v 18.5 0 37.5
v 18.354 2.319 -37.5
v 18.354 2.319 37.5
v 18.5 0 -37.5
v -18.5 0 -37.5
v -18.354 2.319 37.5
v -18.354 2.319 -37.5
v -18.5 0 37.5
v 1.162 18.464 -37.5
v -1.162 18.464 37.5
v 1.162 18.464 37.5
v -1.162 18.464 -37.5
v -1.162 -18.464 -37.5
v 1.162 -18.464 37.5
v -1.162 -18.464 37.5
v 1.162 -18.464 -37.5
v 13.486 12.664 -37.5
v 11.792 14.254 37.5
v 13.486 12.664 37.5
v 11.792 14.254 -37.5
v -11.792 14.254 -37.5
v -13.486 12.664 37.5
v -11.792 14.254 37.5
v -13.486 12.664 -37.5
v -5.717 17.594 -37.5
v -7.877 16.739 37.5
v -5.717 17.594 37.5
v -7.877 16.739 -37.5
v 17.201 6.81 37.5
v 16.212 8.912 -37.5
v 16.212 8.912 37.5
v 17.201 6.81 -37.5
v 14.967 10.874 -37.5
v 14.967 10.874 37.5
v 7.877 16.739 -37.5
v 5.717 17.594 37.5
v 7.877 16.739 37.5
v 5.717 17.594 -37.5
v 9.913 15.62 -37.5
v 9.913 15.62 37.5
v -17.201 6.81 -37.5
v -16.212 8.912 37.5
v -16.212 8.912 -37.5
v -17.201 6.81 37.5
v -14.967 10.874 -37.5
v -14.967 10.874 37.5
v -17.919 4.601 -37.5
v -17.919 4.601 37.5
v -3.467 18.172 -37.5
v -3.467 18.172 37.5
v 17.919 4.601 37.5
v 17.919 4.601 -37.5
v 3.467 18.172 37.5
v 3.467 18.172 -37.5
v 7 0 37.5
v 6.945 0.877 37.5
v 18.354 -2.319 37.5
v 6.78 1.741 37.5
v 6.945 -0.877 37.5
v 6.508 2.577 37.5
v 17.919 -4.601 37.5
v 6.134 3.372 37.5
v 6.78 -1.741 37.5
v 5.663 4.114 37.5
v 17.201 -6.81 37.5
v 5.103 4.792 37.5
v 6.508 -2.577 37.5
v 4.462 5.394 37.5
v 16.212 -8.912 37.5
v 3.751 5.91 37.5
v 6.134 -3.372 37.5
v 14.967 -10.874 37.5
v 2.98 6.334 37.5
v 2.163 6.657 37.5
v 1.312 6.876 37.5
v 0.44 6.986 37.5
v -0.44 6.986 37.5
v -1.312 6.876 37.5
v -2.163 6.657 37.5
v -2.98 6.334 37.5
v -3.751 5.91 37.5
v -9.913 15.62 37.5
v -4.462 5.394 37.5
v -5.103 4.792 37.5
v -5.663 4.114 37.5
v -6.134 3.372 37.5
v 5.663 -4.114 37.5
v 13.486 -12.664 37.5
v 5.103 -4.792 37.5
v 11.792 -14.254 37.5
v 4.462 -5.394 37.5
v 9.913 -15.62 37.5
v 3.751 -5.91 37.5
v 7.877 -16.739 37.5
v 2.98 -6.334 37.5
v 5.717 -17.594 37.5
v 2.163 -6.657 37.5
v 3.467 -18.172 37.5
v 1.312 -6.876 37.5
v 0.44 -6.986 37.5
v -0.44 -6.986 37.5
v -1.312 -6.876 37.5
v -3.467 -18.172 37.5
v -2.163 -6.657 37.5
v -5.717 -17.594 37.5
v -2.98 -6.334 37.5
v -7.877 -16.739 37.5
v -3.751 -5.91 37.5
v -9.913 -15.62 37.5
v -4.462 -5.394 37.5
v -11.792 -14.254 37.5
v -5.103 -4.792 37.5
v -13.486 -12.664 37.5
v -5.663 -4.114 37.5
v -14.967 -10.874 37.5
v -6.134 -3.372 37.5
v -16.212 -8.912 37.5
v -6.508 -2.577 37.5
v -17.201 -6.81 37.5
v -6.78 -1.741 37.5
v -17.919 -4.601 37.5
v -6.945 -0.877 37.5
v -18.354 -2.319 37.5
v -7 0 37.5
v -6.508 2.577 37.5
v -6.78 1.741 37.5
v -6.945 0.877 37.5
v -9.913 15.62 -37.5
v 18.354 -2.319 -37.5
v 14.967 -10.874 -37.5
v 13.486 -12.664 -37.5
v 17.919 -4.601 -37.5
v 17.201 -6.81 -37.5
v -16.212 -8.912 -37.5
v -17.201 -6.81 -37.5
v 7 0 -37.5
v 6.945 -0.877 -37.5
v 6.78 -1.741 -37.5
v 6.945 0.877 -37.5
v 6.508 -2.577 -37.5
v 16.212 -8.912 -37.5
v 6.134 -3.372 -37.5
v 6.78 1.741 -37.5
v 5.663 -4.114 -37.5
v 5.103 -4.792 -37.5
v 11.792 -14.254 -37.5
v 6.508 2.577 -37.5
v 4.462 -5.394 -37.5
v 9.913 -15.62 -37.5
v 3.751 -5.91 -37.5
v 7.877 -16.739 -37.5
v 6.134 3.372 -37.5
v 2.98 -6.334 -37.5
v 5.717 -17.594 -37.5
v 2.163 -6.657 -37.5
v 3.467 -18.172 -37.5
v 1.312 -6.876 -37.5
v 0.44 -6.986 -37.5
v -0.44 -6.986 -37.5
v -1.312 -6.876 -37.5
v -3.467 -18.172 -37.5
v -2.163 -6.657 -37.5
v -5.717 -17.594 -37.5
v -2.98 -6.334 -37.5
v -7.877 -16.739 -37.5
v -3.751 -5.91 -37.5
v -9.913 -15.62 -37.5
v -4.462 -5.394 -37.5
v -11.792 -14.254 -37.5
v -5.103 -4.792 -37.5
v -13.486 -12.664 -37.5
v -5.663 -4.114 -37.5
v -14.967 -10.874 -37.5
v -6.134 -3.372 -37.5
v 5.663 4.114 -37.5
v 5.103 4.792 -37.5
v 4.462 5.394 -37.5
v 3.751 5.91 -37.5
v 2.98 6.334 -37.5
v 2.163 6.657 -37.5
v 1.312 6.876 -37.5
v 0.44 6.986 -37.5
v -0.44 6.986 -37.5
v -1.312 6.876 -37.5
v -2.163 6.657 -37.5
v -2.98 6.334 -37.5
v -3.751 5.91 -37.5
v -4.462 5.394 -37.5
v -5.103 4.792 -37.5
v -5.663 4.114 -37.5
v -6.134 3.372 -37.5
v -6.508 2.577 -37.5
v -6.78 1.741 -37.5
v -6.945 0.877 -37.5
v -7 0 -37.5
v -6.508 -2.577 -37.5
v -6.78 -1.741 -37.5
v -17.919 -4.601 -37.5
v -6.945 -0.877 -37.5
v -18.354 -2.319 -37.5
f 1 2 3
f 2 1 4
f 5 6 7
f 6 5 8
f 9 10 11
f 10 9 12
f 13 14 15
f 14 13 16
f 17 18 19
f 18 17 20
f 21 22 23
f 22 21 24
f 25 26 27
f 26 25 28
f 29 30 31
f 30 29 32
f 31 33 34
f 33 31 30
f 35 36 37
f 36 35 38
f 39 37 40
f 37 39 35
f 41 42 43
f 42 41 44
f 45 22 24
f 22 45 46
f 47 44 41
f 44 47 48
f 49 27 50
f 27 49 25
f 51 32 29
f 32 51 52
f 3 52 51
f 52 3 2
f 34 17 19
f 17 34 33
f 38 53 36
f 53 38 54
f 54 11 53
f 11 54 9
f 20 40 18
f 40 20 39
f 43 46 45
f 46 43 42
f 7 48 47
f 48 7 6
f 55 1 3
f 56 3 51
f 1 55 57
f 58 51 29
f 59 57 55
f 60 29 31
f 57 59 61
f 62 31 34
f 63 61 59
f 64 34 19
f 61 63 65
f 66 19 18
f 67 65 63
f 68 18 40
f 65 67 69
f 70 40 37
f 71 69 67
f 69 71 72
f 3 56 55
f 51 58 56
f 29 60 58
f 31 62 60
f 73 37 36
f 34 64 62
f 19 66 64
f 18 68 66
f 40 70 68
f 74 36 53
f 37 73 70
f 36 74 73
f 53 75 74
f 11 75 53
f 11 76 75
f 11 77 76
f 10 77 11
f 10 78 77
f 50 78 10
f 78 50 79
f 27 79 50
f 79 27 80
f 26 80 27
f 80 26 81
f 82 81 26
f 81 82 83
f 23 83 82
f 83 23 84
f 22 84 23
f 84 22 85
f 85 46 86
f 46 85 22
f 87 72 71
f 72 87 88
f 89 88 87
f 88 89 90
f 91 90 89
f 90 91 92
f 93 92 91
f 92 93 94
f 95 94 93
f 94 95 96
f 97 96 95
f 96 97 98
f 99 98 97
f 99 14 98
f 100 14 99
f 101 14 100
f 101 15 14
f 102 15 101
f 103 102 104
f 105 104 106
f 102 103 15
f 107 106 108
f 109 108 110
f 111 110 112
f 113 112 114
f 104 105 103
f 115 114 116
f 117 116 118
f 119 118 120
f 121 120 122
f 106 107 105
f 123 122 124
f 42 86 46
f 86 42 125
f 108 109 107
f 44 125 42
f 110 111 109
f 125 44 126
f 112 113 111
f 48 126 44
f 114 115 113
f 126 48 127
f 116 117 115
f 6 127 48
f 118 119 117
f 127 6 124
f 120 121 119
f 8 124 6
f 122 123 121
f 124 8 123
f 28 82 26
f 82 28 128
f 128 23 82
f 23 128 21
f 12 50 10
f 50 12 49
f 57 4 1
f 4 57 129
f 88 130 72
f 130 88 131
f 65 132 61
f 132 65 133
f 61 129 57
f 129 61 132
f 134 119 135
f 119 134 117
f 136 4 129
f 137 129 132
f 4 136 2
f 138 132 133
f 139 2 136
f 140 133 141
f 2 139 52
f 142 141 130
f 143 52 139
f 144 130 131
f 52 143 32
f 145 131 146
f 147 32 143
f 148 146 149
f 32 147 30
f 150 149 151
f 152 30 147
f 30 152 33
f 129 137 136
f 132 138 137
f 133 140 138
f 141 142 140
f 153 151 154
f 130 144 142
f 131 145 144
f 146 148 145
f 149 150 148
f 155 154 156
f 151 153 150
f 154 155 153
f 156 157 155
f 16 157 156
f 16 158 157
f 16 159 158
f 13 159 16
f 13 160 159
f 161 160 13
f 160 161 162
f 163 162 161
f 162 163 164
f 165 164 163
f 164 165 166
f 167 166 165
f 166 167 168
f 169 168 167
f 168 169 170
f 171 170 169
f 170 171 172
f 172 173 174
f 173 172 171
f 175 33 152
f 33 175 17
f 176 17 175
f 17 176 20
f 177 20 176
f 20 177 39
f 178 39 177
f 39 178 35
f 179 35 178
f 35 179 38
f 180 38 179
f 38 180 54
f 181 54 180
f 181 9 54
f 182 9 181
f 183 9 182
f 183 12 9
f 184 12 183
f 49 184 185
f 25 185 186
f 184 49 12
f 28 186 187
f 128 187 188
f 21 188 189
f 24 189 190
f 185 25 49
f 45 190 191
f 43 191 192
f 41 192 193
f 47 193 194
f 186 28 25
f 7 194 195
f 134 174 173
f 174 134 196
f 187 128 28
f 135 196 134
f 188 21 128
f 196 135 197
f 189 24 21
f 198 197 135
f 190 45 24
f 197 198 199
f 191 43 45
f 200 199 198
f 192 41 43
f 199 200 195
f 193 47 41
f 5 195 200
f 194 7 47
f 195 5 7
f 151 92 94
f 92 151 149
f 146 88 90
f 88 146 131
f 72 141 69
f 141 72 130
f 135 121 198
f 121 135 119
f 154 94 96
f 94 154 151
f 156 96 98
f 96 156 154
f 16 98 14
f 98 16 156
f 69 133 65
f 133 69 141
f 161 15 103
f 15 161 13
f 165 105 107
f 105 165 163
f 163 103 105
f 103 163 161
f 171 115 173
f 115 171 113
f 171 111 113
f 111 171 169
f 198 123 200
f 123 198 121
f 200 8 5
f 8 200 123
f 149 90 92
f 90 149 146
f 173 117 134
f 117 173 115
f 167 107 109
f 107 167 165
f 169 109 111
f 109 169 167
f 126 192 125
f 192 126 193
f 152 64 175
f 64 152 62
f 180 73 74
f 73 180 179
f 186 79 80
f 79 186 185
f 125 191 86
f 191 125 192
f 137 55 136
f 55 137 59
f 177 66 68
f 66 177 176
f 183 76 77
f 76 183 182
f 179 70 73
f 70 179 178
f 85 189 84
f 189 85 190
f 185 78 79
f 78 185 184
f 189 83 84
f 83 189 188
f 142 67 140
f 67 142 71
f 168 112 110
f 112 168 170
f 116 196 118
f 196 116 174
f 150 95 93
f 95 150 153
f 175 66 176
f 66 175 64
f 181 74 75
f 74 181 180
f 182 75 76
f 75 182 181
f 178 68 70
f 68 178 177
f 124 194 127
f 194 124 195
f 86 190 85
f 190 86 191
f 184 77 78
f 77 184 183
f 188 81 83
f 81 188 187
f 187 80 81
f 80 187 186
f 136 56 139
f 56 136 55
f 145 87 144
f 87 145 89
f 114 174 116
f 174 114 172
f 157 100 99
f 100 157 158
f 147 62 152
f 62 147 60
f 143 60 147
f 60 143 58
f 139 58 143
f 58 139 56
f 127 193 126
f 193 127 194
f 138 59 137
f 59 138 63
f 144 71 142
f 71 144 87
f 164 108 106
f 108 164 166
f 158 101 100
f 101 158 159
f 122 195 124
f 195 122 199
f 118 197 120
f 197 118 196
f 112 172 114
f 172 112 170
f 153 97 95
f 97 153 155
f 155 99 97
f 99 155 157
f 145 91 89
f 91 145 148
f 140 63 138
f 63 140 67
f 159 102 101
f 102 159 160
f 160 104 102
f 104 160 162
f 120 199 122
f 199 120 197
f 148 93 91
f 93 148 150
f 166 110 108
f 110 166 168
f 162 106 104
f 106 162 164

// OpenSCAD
$fn = 50;


difference() {
	union() {
		translate(v = [0, 0, -37.5000000000]) {
			cylinder(h = 75, r = 18.5000000000);
		}
	}
	union() {
		translate(v = [0, 0, -100.0000000000]) {
			cylinder(h = 200, r = 7);
		}
	}
}
